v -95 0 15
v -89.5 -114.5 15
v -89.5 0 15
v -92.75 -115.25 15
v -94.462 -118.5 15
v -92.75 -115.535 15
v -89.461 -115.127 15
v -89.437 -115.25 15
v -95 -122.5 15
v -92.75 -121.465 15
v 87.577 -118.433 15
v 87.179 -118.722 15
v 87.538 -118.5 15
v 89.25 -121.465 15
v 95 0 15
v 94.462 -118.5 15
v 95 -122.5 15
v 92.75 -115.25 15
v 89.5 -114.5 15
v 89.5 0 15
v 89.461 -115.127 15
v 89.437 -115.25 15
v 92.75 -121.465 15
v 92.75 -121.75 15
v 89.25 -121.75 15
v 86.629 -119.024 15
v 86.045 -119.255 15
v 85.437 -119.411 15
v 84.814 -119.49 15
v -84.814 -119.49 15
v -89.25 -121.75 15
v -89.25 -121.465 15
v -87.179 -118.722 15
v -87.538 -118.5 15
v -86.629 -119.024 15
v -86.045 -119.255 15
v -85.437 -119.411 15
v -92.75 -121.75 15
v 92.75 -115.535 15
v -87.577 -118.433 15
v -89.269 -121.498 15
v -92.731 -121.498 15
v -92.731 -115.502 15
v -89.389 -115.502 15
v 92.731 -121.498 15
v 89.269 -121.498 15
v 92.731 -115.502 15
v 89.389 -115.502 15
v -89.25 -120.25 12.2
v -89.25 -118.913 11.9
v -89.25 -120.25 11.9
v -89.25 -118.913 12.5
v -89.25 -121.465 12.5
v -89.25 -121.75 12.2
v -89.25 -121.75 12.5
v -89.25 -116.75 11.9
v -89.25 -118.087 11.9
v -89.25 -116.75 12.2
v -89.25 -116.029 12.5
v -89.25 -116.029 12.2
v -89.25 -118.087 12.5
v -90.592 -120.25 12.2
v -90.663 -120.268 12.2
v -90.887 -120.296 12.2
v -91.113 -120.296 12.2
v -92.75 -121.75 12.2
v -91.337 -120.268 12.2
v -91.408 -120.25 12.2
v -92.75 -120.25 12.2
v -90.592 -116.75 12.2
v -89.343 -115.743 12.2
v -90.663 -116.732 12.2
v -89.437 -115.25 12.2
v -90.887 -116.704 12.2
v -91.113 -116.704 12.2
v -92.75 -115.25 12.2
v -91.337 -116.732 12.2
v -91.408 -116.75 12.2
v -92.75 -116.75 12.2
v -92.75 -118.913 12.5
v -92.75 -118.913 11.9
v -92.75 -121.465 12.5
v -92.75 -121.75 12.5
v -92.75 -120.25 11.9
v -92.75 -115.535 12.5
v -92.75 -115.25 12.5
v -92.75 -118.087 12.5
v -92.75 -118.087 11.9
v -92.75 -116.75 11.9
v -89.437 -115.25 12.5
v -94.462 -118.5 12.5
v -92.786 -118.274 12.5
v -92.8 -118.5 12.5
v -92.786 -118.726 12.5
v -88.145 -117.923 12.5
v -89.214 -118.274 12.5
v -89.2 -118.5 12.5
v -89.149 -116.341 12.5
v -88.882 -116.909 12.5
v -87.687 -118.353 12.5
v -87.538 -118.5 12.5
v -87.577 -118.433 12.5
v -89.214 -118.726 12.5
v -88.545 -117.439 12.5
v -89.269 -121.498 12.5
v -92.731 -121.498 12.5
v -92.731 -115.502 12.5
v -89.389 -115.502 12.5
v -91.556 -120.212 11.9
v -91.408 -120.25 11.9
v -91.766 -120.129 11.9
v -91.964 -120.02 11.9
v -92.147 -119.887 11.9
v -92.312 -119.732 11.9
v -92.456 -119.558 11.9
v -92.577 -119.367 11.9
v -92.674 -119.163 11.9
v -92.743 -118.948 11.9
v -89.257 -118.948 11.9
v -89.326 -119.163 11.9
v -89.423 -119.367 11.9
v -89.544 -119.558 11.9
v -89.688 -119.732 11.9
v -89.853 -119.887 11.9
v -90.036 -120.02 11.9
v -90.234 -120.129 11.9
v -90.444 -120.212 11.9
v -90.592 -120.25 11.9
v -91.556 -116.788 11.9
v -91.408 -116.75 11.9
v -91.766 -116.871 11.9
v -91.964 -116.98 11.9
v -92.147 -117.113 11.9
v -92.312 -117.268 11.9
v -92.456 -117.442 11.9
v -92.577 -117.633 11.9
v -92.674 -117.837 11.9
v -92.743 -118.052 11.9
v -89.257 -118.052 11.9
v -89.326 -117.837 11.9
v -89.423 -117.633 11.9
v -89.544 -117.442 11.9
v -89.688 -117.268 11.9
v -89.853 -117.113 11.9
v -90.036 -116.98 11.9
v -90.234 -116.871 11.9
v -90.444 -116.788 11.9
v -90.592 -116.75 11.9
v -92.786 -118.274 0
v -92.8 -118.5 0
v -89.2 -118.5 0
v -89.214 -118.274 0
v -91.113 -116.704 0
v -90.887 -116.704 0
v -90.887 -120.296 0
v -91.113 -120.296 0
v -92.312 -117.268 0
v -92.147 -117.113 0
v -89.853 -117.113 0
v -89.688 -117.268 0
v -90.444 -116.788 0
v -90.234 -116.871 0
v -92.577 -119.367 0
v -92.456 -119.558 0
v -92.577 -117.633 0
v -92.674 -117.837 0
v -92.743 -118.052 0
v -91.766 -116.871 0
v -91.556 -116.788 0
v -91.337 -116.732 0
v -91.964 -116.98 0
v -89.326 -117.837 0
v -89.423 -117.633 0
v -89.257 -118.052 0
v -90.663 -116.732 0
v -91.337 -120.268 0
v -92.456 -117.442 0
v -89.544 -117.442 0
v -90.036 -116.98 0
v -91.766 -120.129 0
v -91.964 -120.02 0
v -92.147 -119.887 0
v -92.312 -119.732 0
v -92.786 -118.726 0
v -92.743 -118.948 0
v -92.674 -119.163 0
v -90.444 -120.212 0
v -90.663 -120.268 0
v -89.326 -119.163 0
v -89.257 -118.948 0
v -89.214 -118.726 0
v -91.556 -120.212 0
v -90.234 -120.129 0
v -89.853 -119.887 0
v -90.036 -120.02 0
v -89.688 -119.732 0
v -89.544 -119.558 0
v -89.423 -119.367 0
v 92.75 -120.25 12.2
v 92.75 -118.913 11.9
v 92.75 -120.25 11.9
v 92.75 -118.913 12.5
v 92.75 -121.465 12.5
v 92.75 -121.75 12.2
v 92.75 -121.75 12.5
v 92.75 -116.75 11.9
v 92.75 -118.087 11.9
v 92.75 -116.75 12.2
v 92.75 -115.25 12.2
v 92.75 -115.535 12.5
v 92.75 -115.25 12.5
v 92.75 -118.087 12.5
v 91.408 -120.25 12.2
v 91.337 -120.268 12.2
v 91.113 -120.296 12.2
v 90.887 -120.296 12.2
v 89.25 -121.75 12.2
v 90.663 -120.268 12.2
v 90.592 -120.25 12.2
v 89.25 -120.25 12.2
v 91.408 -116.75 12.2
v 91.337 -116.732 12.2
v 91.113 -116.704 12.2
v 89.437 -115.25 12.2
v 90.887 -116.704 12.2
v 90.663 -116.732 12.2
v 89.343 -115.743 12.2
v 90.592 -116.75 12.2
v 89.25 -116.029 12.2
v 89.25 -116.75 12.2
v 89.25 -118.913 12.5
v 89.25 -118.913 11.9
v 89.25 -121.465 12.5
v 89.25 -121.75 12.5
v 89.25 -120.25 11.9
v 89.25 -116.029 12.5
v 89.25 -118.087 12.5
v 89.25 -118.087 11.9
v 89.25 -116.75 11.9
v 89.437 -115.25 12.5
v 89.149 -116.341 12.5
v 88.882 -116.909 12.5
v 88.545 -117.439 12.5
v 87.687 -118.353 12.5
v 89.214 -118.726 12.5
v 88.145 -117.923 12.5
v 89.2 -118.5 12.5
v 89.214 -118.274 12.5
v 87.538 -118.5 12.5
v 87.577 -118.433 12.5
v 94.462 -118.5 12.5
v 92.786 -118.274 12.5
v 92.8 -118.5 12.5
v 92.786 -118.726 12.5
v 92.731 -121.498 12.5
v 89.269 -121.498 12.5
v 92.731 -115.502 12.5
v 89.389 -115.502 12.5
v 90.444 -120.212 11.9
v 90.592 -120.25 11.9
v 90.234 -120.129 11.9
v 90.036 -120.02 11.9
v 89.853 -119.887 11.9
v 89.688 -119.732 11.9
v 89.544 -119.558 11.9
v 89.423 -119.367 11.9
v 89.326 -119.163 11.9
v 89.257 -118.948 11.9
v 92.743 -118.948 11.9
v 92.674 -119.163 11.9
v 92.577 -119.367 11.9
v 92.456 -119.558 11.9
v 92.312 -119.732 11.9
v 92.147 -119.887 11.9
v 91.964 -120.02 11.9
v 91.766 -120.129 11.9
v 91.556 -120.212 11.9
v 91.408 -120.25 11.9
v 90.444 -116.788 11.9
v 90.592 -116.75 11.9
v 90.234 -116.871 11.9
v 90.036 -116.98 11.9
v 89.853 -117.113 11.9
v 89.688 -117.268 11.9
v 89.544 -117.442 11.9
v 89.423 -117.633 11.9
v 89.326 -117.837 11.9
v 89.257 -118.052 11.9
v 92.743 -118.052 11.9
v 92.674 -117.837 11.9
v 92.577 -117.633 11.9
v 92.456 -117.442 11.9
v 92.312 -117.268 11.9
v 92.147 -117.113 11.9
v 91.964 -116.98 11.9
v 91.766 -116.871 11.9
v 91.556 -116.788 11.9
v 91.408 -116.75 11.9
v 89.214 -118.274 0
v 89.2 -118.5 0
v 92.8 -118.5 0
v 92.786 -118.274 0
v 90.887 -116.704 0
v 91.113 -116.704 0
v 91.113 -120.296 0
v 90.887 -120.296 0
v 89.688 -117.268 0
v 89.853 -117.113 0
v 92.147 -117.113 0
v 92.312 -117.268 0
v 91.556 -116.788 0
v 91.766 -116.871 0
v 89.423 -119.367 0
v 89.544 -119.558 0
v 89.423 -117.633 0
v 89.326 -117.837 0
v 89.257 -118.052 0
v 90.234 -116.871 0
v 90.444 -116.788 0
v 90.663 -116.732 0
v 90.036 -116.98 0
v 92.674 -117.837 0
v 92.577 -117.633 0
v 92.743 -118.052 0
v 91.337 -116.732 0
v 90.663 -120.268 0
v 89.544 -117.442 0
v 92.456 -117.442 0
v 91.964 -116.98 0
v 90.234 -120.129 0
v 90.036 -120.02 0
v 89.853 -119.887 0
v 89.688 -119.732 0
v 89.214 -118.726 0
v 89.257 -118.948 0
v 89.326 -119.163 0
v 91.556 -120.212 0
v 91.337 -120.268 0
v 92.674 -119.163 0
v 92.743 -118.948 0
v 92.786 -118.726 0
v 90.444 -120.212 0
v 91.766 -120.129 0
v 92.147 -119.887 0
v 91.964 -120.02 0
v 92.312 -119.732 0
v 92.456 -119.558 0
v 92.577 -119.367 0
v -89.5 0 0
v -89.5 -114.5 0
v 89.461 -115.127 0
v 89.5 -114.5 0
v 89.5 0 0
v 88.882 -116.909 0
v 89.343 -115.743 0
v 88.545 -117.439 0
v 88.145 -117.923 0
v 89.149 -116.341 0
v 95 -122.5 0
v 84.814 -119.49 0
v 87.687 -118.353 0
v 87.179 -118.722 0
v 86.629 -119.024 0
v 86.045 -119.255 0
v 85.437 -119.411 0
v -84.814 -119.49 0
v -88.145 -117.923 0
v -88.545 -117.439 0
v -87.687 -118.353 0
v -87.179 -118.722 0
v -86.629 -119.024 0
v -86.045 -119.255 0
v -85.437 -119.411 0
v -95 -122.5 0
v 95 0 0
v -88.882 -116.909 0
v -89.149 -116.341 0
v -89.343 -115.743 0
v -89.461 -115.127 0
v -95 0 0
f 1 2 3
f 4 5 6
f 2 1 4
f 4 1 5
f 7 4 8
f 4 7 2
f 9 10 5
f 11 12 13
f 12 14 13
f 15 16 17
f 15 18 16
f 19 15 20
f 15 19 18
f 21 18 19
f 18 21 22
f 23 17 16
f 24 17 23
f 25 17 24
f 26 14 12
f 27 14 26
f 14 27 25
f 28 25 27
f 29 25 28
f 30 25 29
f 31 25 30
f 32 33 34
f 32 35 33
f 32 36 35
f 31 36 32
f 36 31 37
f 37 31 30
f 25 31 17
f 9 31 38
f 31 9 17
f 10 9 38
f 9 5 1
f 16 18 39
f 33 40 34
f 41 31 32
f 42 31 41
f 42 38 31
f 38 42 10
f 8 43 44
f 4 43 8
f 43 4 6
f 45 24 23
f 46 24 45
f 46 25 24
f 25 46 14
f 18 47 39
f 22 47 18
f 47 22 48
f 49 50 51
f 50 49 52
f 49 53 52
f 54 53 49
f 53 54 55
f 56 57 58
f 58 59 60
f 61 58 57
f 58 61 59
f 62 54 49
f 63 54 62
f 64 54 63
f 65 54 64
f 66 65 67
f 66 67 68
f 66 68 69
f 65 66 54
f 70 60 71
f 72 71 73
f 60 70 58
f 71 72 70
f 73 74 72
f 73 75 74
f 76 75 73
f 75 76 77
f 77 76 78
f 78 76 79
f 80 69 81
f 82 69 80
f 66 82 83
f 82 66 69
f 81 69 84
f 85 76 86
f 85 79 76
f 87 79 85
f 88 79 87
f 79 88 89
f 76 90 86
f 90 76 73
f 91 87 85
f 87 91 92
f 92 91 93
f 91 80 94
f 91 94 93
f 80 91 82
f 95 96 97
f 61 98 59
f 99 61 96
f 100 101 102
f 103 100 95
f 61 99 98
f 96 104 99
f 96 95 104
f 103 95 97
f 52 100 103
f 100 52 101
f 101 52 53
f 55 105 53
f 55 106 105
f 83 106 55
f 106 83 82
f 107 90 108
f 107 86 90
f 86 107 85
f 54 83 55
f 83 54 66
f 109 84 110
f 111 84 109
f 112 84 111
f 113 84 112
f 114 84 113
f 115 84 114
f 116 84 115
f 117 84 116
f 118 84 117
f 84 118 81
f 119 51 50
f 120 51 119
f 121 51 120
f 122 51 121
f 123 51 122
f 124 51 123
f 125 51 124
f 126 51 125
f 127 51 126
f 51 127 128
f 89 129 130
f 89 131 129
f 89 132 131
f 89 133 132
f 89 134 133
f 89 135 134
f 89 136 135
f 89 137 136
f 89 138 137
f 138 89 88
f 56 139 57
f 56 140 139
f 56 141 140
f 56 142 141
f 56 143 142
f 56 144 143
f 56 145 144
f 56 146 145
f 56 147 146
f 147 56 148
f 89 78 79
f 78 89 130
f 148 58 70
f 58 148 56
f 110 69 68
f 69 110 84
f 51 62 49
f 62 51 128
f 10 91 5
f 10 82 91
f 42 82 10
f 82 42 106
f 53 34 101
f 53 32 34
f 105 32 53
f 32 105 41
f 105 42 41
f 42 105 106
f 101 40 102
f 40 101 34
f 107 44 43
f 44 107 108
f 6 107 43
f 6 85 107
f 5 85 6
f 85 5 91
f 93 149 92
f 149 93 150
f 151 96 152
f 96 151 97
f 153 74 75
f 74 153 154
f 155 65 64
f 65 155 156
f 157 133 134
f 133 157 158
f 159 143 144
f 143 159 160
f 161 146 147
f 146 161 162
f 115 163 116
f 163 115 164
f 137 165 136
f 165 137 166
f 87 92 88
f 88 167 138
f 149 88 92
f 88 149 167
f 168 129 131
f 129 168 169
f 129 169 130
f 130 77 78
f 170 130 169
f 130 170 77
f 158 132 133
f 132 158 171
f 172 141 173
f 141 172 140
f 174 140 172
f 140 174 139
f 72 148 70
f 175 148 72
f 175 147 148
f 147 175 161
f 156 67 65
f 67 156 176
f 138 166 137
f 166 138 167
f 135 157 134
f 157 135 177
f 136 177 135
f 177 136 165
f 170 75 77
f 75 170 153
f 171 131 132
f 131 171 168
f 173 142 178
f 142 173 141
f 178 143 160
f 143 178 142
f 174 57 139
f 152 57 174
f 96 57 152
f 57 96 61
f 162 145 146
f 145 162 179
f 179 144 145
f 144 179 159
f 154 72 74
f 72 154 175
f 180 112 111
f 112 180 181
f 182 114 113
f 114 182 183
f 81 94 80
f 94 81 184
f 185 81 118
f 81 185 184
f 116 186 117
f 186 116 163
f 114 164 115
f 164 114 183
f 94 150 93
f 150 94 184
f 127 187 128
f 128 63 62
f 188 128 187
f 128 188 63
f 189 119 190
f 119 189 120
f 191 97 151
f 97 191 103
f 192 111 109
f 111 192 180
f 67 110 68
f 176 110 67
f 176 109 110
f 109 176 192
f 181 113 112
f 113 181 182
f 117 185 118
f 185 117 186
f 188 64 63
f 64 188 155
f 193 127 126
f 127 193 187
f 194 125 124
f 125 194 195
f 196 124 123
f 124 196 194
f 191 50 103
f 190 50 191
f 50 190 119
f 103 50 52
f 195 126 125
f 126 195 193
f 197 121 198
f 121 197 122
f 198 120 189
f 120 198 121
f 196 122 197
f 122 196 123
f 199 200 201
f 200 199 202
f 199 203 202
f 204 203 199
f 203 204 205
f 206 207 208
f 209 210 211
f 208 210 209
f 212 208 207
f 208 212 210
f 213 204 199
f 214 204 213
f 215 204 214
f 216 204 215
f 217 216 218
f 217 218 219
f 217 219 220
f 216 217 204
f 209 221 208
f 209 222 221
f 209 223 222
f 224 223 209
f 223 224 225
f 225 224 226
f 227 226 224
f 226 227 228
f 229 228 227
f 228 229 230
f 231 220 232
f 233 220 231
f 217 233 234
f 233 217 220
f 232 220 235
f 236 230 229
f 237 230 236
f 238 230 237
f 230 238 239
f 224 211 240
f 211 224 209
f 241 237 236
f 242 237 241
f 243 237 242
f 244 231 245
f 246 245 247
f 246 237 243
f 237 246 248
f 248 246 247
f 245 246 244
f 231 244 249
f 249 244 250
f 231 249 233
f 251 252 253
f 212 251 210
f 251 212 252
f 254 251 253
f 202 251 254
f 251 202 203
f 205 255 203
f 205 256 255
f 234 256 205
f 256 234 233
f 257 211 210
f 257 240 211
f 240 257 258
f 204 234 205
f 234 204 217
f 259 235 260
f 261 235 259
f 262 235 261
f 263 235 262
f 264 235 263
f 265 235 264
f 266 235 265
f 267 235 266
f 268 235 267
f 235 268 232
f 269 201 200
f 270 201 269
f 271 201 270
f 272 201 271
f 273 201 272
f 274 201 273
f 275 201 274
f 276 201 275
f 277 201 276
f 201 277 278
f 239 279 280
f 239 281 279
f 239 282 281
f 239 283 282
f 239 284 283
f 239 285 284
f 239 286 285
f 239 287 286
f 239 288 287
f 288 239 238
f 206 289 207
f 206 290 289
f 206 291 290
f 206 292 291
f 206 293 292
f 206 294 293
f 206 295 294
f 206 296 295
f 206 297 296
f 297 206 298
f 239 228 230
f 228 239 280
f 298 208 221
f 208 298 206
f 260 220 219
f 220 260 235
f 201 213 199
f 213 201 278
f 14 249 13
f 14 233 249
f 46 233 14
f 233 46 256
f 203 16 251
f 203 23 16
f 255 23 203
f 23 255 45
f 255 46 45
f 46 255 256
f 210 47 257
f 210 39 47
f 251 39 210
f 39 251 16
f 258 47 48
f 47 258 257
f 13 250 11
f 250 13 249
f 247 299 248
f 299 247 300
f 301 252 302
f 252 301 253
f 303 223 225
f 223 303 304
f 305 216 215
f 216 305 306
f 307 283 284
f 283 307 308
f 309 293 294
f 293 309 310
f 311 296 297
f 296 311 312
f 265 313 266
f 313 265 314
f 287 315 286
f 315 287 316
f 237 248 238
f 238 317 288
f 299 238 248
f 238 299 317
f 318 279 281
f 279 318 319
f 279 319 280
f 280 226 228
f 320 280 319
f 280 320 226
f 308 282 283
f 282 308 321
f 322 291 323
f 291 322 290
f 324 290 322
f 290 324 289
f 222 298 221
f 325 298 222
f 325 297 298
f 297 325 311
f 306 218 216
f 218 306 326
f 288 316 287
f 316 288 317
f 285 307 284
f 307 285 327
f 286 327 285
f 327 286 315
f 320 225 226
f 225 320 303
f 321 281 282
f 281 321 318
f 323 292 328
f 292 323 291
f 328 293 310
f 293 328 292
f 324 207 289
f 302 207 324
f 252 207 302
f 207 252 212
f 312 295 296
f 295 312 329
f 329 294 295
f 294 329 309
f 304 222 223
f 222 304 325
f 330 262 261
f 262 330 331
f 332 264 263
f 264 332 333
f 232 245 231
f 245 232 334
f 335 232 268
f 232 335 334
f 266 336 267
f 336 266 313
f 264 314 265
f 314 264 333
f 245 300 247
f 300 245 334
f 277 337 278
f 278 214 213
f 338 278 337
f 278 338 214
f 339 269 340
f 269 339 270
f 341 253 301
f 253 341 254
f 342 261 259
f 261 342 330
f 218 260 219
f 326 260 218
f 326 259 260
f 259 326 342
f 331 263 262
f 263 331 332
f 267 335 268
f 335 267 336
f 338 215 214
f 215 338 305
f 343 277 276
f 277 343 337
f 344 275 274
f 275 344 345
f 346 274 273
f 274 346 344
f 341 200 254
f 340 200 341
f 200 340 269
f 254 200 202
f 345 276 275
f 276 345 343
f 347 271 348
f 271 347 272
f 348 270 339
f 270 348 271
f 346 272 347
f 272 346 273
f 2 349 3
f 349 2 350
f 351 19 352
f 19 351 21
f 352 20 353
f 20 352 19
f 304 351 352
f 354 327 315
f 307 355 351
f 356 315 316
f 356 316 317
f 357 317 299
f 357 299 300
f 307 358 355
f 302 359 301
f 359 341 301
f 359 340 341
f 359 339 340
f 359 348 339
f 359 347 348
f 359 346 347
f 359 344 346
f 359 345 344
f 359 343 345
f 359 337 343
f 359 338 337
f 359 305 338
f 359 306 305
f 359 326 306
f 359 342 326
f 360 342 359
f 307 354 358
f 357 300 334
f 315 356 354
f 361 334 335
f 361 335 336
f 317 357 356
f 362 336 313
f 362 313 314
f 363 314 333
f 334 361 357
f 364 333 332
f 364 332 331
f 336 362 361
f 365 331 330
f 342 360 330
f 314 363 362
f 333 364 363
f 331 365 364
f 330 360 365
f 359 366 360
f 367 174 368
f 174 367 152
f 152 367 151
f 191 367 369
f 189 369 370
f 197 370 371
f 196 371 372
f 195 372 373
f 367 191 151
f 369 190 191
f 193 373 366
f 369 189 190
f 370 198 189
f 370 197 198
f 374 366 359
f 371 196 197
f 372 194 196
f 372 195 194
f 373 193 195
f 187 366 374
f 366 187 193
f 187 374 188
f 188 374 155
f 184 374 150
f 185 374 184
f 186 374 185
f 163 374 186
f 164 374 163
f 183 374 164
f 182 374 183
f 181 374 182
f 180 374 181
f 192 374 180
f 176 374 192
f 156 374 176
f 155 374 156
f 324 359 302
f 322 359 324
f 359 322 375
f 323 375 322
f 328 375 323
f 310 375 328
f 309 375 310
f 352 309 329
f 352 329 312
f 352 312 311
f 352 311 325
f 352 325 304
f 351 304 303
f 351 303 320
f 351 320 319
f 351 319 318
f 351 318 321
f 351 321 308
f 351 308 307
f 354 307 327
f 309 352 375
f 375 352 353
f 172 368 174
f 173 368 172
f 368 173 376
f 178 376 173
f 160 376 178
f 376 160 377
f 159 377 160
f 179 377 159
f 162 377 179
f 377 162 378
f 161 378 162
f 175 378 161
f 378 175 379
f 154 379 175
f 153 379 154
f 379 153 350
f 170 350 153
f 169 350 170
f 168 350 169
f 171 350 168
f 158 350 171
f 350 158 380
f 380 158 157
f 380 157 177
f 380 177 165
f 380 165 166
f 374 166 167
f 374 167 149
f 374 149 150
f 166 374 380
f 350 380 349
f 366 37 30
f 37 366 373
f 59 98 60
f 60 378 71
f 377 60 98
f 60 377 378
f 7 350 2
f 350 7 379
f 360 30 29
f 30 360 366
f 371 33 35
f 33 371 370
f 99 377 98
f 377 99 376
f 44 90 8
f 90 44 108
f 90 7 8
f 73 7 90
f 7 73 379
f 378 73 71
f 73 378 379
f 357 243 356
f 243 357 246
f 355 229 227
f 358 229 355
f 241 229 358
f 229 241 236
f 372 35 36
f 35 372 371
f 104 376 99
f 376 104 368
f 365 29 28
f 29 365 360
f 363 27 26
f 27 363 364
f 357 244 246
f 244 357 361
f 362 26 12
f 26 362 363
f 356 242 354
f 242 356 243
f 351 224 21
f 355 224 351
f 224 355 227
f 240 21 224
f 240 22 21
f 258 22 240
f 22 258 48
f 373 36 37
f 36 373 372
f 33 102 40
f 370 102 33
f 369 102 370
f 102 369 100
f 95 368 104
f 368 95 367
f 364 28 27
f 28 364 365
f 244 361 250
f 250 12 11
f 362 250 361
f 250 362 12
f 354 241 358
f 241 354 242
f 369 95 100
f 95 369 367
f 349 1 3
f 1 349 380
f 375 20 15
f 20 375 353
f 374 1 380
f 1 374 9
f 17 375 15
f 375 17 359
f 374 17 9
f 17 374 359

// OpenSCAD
$fn = 50;


difference() {
	union() {
		translate(v = [-95.0000000000, -122.5000000000, 0]) {
			cube(size = [190, 245, 15]);
		}
	}
	union() {
		translate(v = [-91.0000000000, -118.5000000000, -3]) {
			rotate(a = [0, 180, 0]) {
				difference() {
					union() {
						translate(v = [0, 0, -18.0000000000]) {
							rotate(a = [0, 0, 0]) {
								difference() {
									union() {
										#translate(v = [-1.7500000000, -3.2500000000, -0.3000000000]) {
											cube(size = [3.5000000000, 6.5000000000, 0.3000000000]);
										}
										#translate(v = [-1.7500000000, -1.7500000000, -0.6000000000]) {
											cube(size = [3.5000000000, 3.5000000000, 0.3000000000]);
										}
										#translate(v = [-1.7500000000, -3.2500000000, 2.5000000000]) {
											cube(size = [3.5000000000, 6.5000000000, 0.3000000000]);
										}
										#translate(v = [-1.7500000000, -1.7500000000, 2.8000000000]) {
											cube(size = [3.5000000000, 3.5000000000, 0.3000000000]);
										}
										#linear_extrude(height = 2.5000000000) {
											polygon(points = [[3.4620000000, 0.0000000000], [1.7310000000, 2.9981799479], [-1.7310000000, 2.9981799479], [-3.4620000000, 0.0000000000], [-1.7310000000, -2.9981799479], [1.7310000000, -2.9981799479]]);
										}
										#translate(v = [-1.7500000000, -3.2500000000, -0.3000000000]) {
											cube(size = [3.5000000000, 6.5000000000, 0.3000000000]);
										}
										#translate(v = [-1.7500000000, -1.7500000000, -0.6000000000]) {
											cube(size = [3.5000000000, 3.5000000000, 0.3000000000]);
										}
										#translate(v = [-1.7500000000, -3.2500000000, 2.5000000000]) {
											cube(size = [3.5000000000, 6.5000000000, 0.3000000000]);
										}
										#translate(v = [-1.7500000000, -1.7500000000, 2.8000000000]) {
											cube(size = [3.5000000000, 3.5000000000, 0.3000000000]);
										}
										#translate(v = [-1.7500000000, -3.2500000000, -0.3000000000]) {
											cube(size = [3.5000000000, 6.5000000000, 0.3000000000]);
										}
										#translate(v = [-1.7500000000, -1.7500000000, -0.6000000000]) {
											cube(size = [3.5000000000, 3.5000000000, 0.3000000000]);
										}
										#translate(v = [-1.7500000000, -3.2500000000, 2.5000000000]) {
											cube(size = [3.5000000000, 6.5000000000, 0.3000000000]);
										}
										#translate(v = [-1.7500000000, -1.7500000000, 2.8000000000]) {
											cube(size = [3.5000000000, 3.5000000000, 0.3000000000]);
										}
									}
									union();
								}
							}
						}
						translate(v = [0, 0, -18.0000000000]) {
							rotate(a = [0, 0, 0]) {
								difference() {
									union() {
										#translate(v = [-1.7500000000, -3.2500000000, -0.3000000000]) {
											cube(size = [3.5000000000, 6.5000000000, 0.3000000000]);
										}
										#translate(v = [-1.7500000000, -1.7500000000, -0.6000000000]) {
											cube(size = [3.5000000000, 3.5000000000, 0.3000000000]);
										}
										#translate(v = [-1.7500000000, -3.2500000000, 2.5000000000]) {
											cube(size = [3.5000000000, 6.5000000000, 0.3000000000]);
										}
										#translate(v = [-1.7500000000, -1.7500000000, 2.8000000000]) {
											cube(size = [3.5000000000, 3.5000000000, 0.3000000000]);
										}
										#linear_extrude(height = 2.5000000000) {
											polygon(points = [[3.4620000000, 0.0000000000], [1.7310000000, 2.9981799479], [-1.7310000000, 2.9981799479], [-3.4620000000, 0.0000000000], [-1.7310000000, -2.9981799479], [1.7310000000, -2.9981799479]]);
										}
										#translate(v = [-1.7500000000, -3.2500000000, -0.3000000000]) {
											cube(size = [3.5000000000, 6.5000000000, 0.3000000000]);
										}
										#translate(v = [-1.7500000000, -1.7500000000, -0.6000000000]) {
											cube(size = [3.5000000000, 3.5000000000, 0.3000000000]);
										}
										#translate(v = [-1.7500000000, -3.2500000000, 2.5000000000]) {
											cube(size = [3.5000000000, 6.5000000000, 0.3000000000]);
										}
										#translate(v = [-1.7500000000, -1.7500000000, 2.8000000000]) {
											cube(size = [3.5000000000, 3.5000000000, 0.3000000000]);
										}
										#translate(v = [-1.7500000000, -3.2500000000, -0.3000000000]) {
											cube(size = [3.5000000000, 6.5000000000, 0.3000000000]);
										}
										#translate(v = [-1.7500000000, -1.7500000000, -0.6000000000]) {
											cube(size = [3.5000000000, 3.5000000000, 0.3000000000]);
										}
										#translate(v = [-1.7500000000, -3.2500000000, 2.5000000000]) {
											cube(size = [3.5000000000, 6.5000000000, 0.3000000000]);
										}
										#translate(v = [-1.7500000000, -1.7500000000, 2.8000000000]) {
											cube(size = [3.5000000000, 3.5000000000, 0.3000000000]);
										}
									}
									union();
								}
							}
						}
						translate(v = [0, 0, -18.0000000000]) {
							rotate(a = [0, 0, 0]) {
								difference() {
									union() {
										#translate(v = [-1.7500000000, -3.2500000000, -0.3000000000]) {
											cube(size = [3.5000000000, 6.5000000000, 0.3000000000]);
										}
										#translate(v = [-1.7500000000, -1.7500000000, -0.6000000000]) {
											cube(size = [3.5000000000, 3.5000000000, 0.3000000000]);
										}
										#translate(v = [-1.7500000000, -3.2500000000, 2.5000000000]) {
											cube(size = [3.5000000000, 6.5000000000, 0.3000000000]);
										}
										#translate(v = [-1.7500000000, -1.7500000000, 2.8000000000]) {
											cube(size = [3.5000000000, 3.5000000000, 0.3000000000]);
										}
										#linear_extrude(height = 2.5000000000) {
											polygon(points = [[3.4620000000, 0.0000000000], [1.7310000000, 2.9981799479], [-1.7310000000, 2.9981799479], [-3.4620000000, 0.0000000000], [-1.7310000000, -2.9981799479], [1.7310000000, -2.9981799479]]);
										}
										#translate(v = [-1.7500000000, -3.2500000000, -0.3000000000]) {
											cube(size = [3.5000000000, 6.5000000000, 0.3000000000]);
										}
										#translate(v = [-1.7500000000, -1.7500000000, -0.6000000000]) {
											cube(size = [3.5000000000, 3.5000000000, 0.3000000000]);
										}
										#translate(v = [-1.7500000000, -3.2500000000, 2.5000000000]) {
											cube(size = [3.5000000000, 6.5000000000, 0.3000000000]);
										}
										#translate(v = [-1.7500000000, -1.7500000000, 2.8000000000]) {
											cube(size = [3.5000000000, 3.5000000000, 0.3000000000]);
										}
										#translate(v = [-1.7500000000, -3.2500000000, -0.3000000000]) {
											cube(size = [3.5000000000, 6.5000000000, 0.3000000000]);
										}
										#translate(v = [-1.7500000000, -1.7500000000, -0.6000000000]) {
											cube(size = [3.5000000000, 3.5000000000, 0.3000000000]);
										}
										#translate(v = [-1.7500000000, -3.2500000000, 2.5000000000]) {
											cube(size = [3.5000000000, 6.5000000000, 0.3000000000]);
										}
										#translate(v = [-1.7500000000, -1.7500000000, 2.8000000000]) {
											cube(size = [3.5000000000, 3.5000000000, 0.3000000000]);
										}
									}
									union();
								}
							}
						}
						#translate(v = [0, 0, -18.0000000000]) {
							cylinder(h = 18, r = 1.5000000000);
						}
						#translate(v = [0, 0, -1.9000000000]) {
							cylinder(h = 1.9000000000, r1 = 1.8000000000, r2 = 3.6000000000);
						}
						#translate(v = [0, 0, -18.0000000000]) {
							cylinder(h = 18, r = 1.8000000000);
						}
						#translate(v = [0, 0, -18.0000000000]) {
							cylinder(h = 18, r = 1.5000000000);
						}
					}
					union();
				}
			}
		}
		translate(v = [91.0000000000, -118.5000000000, -3]) {
			rotate(a = [0, 180, 0]) {
				difference() {
					union() {
						translate(v = [0, 0, -18.0000000000]) {
							rotate(a = [0, 0, 0]) {
								difference() {
									union() {
										#translate(v = [-1.7500000000, -3.2500000000, -0.3000000000]) {
											cube(size = [3.5000000000, 6.5000000000, 0.3000000000]);
										}
										#translate(v = [-1.7500000000, -1.7500000000, -0.6000000000]) {
											cube(size = [3.5000000000, 3.5000000000, 0.3000000000]);
										}
										#translate(v = [-1.7500000000, -3.2500000000, 2.5000000000]) {
											cube(size = [3.5000000000, 6.5000000000, 0.3000000000]);
										}
										#translate(v = [-1.7500000000, -1.7500000000, 2.8000000000]) {
											cube(size = [3.5000000000, 3.5000000000, 0.3000000000]);
										}
										#linear_extrude(height = 2.5000000000) {
											polygon(points = [[3.4620000000, 0.0000000000], [1.7310000000, 2.9981799479], [-1.7310000000, 2.9981799479], [-3.4620000000, 0.0000000000], [-1.7310000000, -2.9981799479], [1.7310000000, -2.9981799479]]);
										}
										#translate(v = [-1.7500000000, -3.2500000000, -0.3000000000]) {
											cube(size = [3.5000000000, 6.5000000000, 0.3000000000]);
										}
										#translate(v = [-1.7500000000, -1.7500000000, -0.6000000000]) {
											cube(size = [3.5000000000, 3.5000000000, 0.3000000000]);
										}
										#translate(v = [-1.7500000000, -3.2500000000, 2.5000000000]) {
											cube(size = [3.5000000000, 6.5000000000, 0.3000000000]);
										}
										#translate(v = [-1.7500000000, -1.7500000000, 2.8000000000]) {
											cube(size = [3.5000000000, 3.5000000000, 0.3000000000]);
										}
										#translate(v = [-1.7500000000, -3.2500000000, -0.3000000000]) {
											cube(size = [3.5000000000, 6.5000000000, 0.3000000000]);
										}
										#translate(v = [-1.7500000000, -1.7500000000, -0.6000000000]) {
											cube(size = [3.5000000000, 3.5000000000, 0.3000000000]);
										}
										#translate(v = [-1.7500000000, -3.2500000000, 2.5000000000]) {
											cube(size = [3.5000000000, 6.5000000000, 0.3000000000]);
										}
										#translate(v = [-1.7500000000, -1.7500000000, 2.8000000000]) {
											cube(size = [3.5000000000, 3.5000000000, 0.3000000000]);
										}
									}
									union();
								}
							}
						}
						translate(v = [0, 0, -18.0000000000]) {
							rotate(a = [0, 0, 0]) {
								difference() {
									union() {
										#translate(v = [-1.7500000000, -3.2500000000, -0.3000000000]) {
											cube(size = [3.5000000000, 6.5000000000, 0.3000000000]);
										}
										#translate(v = [-1.7500000000, -1.7500000000, -0.6000000000]) {
											cube(size = [3.5000000000, 3.5000000000, 0.3000000000]);
										}
										#translate(v = [-1.7500000000, -3.2500000000, 2.5000000000]) {
											cube(size = [3.5000000000, 6.5000000000, 0.3000000000]);
										}
										#translate(v = [-1.7500000000, -1.7500000000, 2.8000000000]) {
											cube(size = [3.5000000000, 3.5000000000, 0.3000000000]);
										}
										#linear_extrude(height = 2.5000000000) {
											polygon(points = [[3.4620000000, 0.0000000000], [1.7310000000, 2.9981799479], [-1.7310000000, 2.9981799479], [-3.4620000000, 0.0000000000], [-1.7310000000, -2.9981799479], [1.7310000000, -2.9981799479]]);
										}
										#translate(v = [-1.7500000000, -3.2500000000, -0.3000000000]) {
											cube(size = [3.5000000000, 6.5000000000, 0.3000000000]);
										}
										#translate(v = [-1.7500000000, -1.7500000000, -0.6000000000]) {
											cube(size = [3.5000000000, 3.5000000000, 0.3000000000]);
										}
										#translate(v = [-1.7500000000, -3.2500000000, 2.5000000000]) {
											cube(size = [3.5000000000, 6.5000000000, 0.3000000000]);
										}
										#translate(v = [-1.7500000000, -1.7500000000, 2.8000000000]) {
											cube(size = [3.5000000000, 3.5000000000, 0.3000000000]);
										}
										#translate(v = [-1.7500000000, -3.2500000000, -0.3000000000]) {
											cube(size = [3.5000000000, 6.5000000000, 0.3000000000]);
										}
										#translate(v = [-1.7500000000, -1.7500000000, -0.6000000000]) {
											cube(size = [3.5000000000, 3.5000000000, 0.3000000000]);
										}
										#translate(v = [-1.7500000000, -3.2500000000, 2.5000000000]) {
											cube(size = [3.5000000000, 6.5000000000, 0.3000000000]);
										}
										#translate(v = [-1.7500000000, -1.7500000000, 2.8000000000]) {
											cube(size = [3.5000000000, 3.5000000000, 0.3000000000]);
										}
									}
									union();
								}
							}
						}
						translate(v = [0, 0, -18.0000000000]) {
							rotate(a = [0, 0, 0]) {
								difference() {
									union() {
										#translate(v = [-1.7500000000, -3.2500000000, -0.3000000000]) {
											cube(size = [3.5000000000, 6.5000000000, 0.3000000000]);
										}
										#translate(v = [-1.7500000000, -1.7500000000, -0.6000000000]) {
											cube(size = [3.5000000000, 3.5000000000, 0.3000000000]);
										}
										#translate(v = [-1.7500000000, -3.2500000000, 2.5000000000]) {
											cube(size = [3.5000000000, 6.5000000000, 0.3000000000]);
										}
										#translate(v = [-1.7500000000, -1.7500000000, 2.8000000000]) {
											cube(size = [3.5000000000, 3.5000000000, 0.3000000000]);
										}
										#linear_extrude(height = 2.5000000000) {
											polygon(points = [[3.4620000000, 0.0000000000], [1.7310000000, 2.9981799479], [-1.7310000000, 2.9981799479], [-3.4620000000, 0.0000000000], [-1.7310000000, -2.9981799479], [1.7310000000, -2.9981799479]]);
										}
										#translate(v = [-1.7500000000, -3.2500000000, -0.3000000000]) {
											cube(size = [3.5000000000, 6.5000000000, 0.3000000000]);
										}
										#translate(v = [-1.7500000000, -1.7500000000, -0.6000000000]) {
											cube(size = [3.5000000000, 3.5000000000, 0.3000000000]);
										}
										#translate(v = [-1.7500000000, -3.2500000000, 2.5000000000]) {
											cube(size = [3.5000000000, 6.5000000000, 0.3000000000]);
										}
										#translate(v = [-1.7500000000, -1.7500000000, 2.8000000000]) {
											cube(size = [3.5000000000, 3.5000000000, 0.3000000000]);
										}
										#translate(v = [-1.7500000000, -3.2500000000, -0.3000000000]) {
											cube(size = [3.5000000000, 6.5000000000, 0.3000000000]);
										}
										#translate(v = [-1.7500000000, -1.7500000000, -0.6000000000]) {
											cube(size = [3.5000000000, 3.5000000000, 0.3000000000]);
										}
										#translate(v = [-1.7500000000, -3.2500000000, 2.5000000000]) {
											cube(size = [3.5000000000, 6.5000000000, 0.3000000000]);
										}
										#translate(v = [-1.7500000000, -1.7500000000, 2.8000000000]) {
											cube(size = [3.5000000000, 3.5000000000, 0.3000000000]);
										}
									}
									union();
								}
							}
						}
						#translate(v = [0, 0, -18.0000000000]) {
							cylinder(h = 18, r = 1.5000000000);
						}
						#translate(v = [0, 0, -1.9000000000]) {
							cylinder(h = 1.9000000000, r1 = 1.8000000000, r2 = 3.6000000000);
						}
						#translate(v = [0, 0, -18.0000000000]) {
							cylinder(h = 18, r = 1.8000000000);
						}
						#translate(v = [0, 0, -18.0000000000]) {
							cylinder(h = 18, r = 1.5000000000);
						}
					}
					union();
				}
			}
		}
		translate(v = [-91.0000000000, 118.5000000000, -3]) {
			rotate(a = [0, 180, 0]) {
				difference() {
					union() {
						translate(v = [0, 0, -18.0000000000]) {
							rotate(a = [0, 0, 0]) {
								difference() {
									union() {
										#translate(v = [-1.7500000000, -3.2500000000, -0.3000000000]) {
											cube(size = [3.5000000000, 6.5000000000, 0.3000000000]);
										}
										#translate(v = [-1.7500000000, -1.7500000000, -0.6000000000]) {
											cube(size = [3.5000000000, 3.5000000000, 0.3000000000]);
										}
										#translate(v = [-1.7500000000, -3.2500000000, 2.5000000000]) {
											cube(size = [3.5000000000, 6.5000000000, 0.3000000000]);
										}
										#translate(v = [-1.7500000000, -1.7500000000, 2.8000000000]) {
											cube(size = [3.5000000000, 3.5000000000, 0.3000000000]);
										}
										#linear_extrude(height = 2.5000000000) {
											polygon(points = [[3.4620000000, 0.0000000000], [1.7310000000, 2.9981799479], [-1.7310000000, 2.9981799479], [-3.4620000000, 0.0000000000], [-1.7310000000, -2.9981799479], [1.7310000000, -2.9981799479]]);
										}
										#translate(v = [-1.7500000000, -3.2500000000, -0.3000000000]) {
											cube(size = [3.5000000000, 6.5000000000, 0.3000000000]);
										}
										#translate(v = [-1.7500000000, -1.7500000000, -0.6000000000]) {
											cube(size = [3.5000000000, 3.5000000000, 0.3000000000]);
										}
										#translate(v = [-1.7500000000, -3.2500000000, 2.5000000000]) {
											cube(size = [3.5000000000, 6.5000000000, 0.3000000000]);
										}
										#translate(v = [-1.7500000000, -1.7500000000, 2.8000000000]) {
											cube(size = [3.5000000000, 3.5000000000, 0.3000000000]);
										}
										#translate(v = [-1.7500000000, -3.2500000000, -0.3000000000]) {
											cube(size = [3.5000000000, 6.5000000000, 0.3000000000]);
										}
										#translate(v = [-1.7500000000, -1.7500000000, -0.6000000000]) {
											cube(size = [3.5000000000, 3.5000000000, 0.3000000000]);
										}
										#translate(v = [-1.7500000000, -3.2500000000, 2.5000000000]) {
											cube(size = [3.5000000000, 6.5000000000, 0.3000000000]);
										}
										#translate(v = [-1.7500000000, -1.7500000000, 2.8000000000]) {
											cube(size = [3.5000000000, 3.5000000000, 0.3000000000]);
										}
									}
									union();
								}
							}
						}
						translate(v = [0, 0, -18.0000000000]) {
							rotate(a = [0, 0, 0]) {
								difference() {
									union() {
										#translate(v = [-1.7500000000, -3.2500000000, -0.3000000000]) {
											cube(size = [3.5000000000, 6.5000000000, 0.3000000000]);
										}
										#translate(v = [-1.7500000000, -1.7500000000, -0.6000000000]) {
											cube(size = [3.5000000000, 3.5000000000, 0.3000000000]);
										}
										#translate(v = [-1.7500000000, -3.2500000000, 2.5000000000]) {
											cube(size = [3.5000000000, 6.5000000000, 0.3000000000]);
										}
										#translate(v = [-1.7500000000, -1.7500000000, 2.8000000000]) {
											cube(size = [3.5000000000, 3.5000000000, 0.3000000000]);
										}
										#linear_extrude(height = 2.5000000000) {
											polygon(points = [[3.4620000000, 0.0000000000], [1.7310000000, 2.9981799479], [-1.7310000000, 2.9981799479], [-3.4620000000, 0.0000000000], [-1.7310000000, -2.9981799479], [1.7310000000, -2.9981799479]]);
										}
										#translate(v = [-1.7500000000, -3.2500000000, -0.3000000000]) {
											cube(size = [3.5000000000, 6.5000000000, 0.3000000000]);
										}
										#translate(v = [-1.7500000000, -1.7500000000, -0.6000000000]) {
											cube(size = [3.5000000000, 3.5000000000, 0.3000000000]);
										}
										#translate(v = [-1.7500000000, -3.2500000000, 2.5000000000]) {
											cube(size = [3.5000000000, 6.5000000000, 0.3000000000]);
										}
										#translate(v = [-1.7500000000, -1.7500000000, 2.8000000000]) {
											cube(size = [3.5000000000, 3.5000000000, 0.3000000000]);
										}
										#translate(v = [-1.7500000000, -3.2500000000, -0.3000000000]) {
											cube(size = [3.5000000000, 6.5000000000, 0.3000000000]);
										}
										#translate(v = [-1.7500000000, -1.7500000000, -0.6000000000]) {
											cube(size = [3.5000000000, 3.5000000000, 0.3000000000]);
										}
										#translate(v = [-1.7500000000, -3.2500000000, 2.5000000000]) {
											cube(size = [3.5000000000, 6.5000000000, 0.3000000000]);
										}
										#translate(v = [-1.7500000000, -1.7500000000, 2.8000000000]) {
											cube(size = [3.5000000000, 3.5000000000, 0.3000000000]);
										}
									}
									union();
								}
							}
						}
						translate(v = [0, 0, -18.0000000000]) {
							rotate(a = [0, 0, 0]) {
								difference() {
									union() {
										#translate(v = [-1.7500000000, -3.2500000000, -0.3000000000]) {
											cube(size = [3.5000000000, 6.5000000000, 0.3000000000]);
										}
										#translate(v = [-1.7500000000, -1.7500000000, -0.6000000000]) {
											cube(size = [3.5000000000, 3.5000000000, 0.3000000000]);
										}
										#translate(v = [-1.7500000000, -3.2500000000, 2.5000000000]) {
											cube(size = [3.5000000000, 6.5000000000, 0.3000000000]);
										}
										#translate(v = [-1.7500000000, -1.7500000000, 2.8000000000]) {
											cube(size = [3.5000000000, 3.5000000000, 0.3000000000]);
										}
										#linear_extrude(height = 2.5000000000) {
											polygon(points = [[3.4620000000, 0.0000000000], [1.7310000000, 2.9981799479], [-1.7310000000, 2.9981799479], [-3.4620000000, 0.0000000000], [-1.7310000000, -2.9981799479], [1.7310000000, -2.9981799479]]);
										}
										#translate(v = [-1.7500000000, -3.2500000000, -0.3000000000]) {
											cube(size = [3.5000000000, 6.5000000000, 0.3000000000]);
										}
										#translate(v = [-1.7500000000, -1.7500000000, -0.6000000000]) {
											cube(size = [3.5000000000, 3.5000000000, 0.3000000000]);
										}
										#translate(v = [-1.7500000000, -3.2500000000, 2.5000000000]) {
											cube(size = [3.5000000000, 6.5000000000, 0.3000000000]);
										}
										#translate(v = [-1.7500000000, -1.7500000000, 2.8000000000]) {
											cube(size = [3.5000000000, 3.5000000000, 0.3000000000]);
										}
										#translate(v = [-1.7500000000, -3.2500000000, -0.3000000000]) {
											cube(size = [3.5000000000, 6.5000000000, 0.3000000000]);
										}
										#translate(v = [-1.7500000000, -1.7500000000, -0.6000000000]) {
											cube(size = [3.5000000000, 3.5000000000, 0.3000000000]);
										}
										#translate(v = [-1.7500000000, -3.2500000000, 2.5000000000]) {
											cube(size = [3.5000000000, 6.5000000000, 0.3000000000]);
										}
										#translate(v = [-1.7500000000, -1.7500000000, 2.8000000000]) {
											cube(size = [3.5000000000, 3.5000000000, 0.3000000000]);
										}
									}
									union();
								}
							}
						}
						#translate(v = [0, 0, -18.0000000000]) {
							cylinder(h = 18, r = 1.5000000000);
						}
						#translate(v = [0, 0, -1.9000000000]) {
							cylinder(h = 1.9000000000, r1 = 1.8000000000, r2 = 3.6000000000);
						}
						#translate(v = [0, 0, -18.0000000000]) {
							cylinder(h = 18, r = 1.8000000000);
						}
						#translate(v = [0, 0, -18.0000000000]) {
							cylinder(h = 18, r = 1.5000000000);
						}
					}
					union();
				}
			}
		}
		translate(v = [91.0000000000, 118.5000000000, -3]) {
			rotate(a = [0, 180, 0]) {
				difference() {
					union() {
						translate(v = [0, 0, -18.0000000000]) {
							rotate(a = [0, 0, 0]) {
								difference() {
									union() {
										#translate(v = [-1.7500000000, -3.2500000000, -0.3000000000]) {
											cube(size = [3.5000000000, 6.5000000000, 0.3000000000]);
										}
										#translate(v = [-1.7500000000, -1.7500000000, -0.6000000000]) {
											cube(size = [3.5000000000, 3.5000000000, 0.3000000000]);
										}
										#translate(v = [-1.7500000000, -3.2500000000, 2.5000000000]) {
											cube(size = [3.5000000000, 6.5000000000, 0.3000000000]);
										}
										#translate(v = [-1.7500000000, -1.7500000000, 2.8000000000]) {
											cube(size = [3.5000000000, 3.5000000000, 0.3000000000]);
										}
										#linear_extrude(height = 2.5000000000) {
											polygon(points = [[3.4620000000, 0.0000000000], [1.7310000000, 2.9981799479], [-1.7310000000, 2.9981799479], [-3.4620000000, 0.0000000000], [-1.7310000000, -2.9981799479], [1.7310000000, -2.9981799479]]);
										}
										#translate(v = [-1.7500000000, -3.2500000000, -0.3000000000]) {
											cube(size = [3.5000000000, 6.5000000000, 0.3000000000]);
										}
										#translate(v = [-1.7500000000, -1.7500000000, -0.6000000000]) {
											cube(size = [3.5000000000, 3.5000000000, 0.3000000000]);
										}
										#translate(v = [-1.7500000000, -3.2500000000, 2.5000000000]) {
											cube(size = [3.5000000000, 6.5000000000, 0.3000000000]);
										}
										#translate(v = [-1.7500000000, -1.7500000000, 2.8000000000]) {
											cube(size = [3.5000000000, 3.5000000000, 0.3000000000]);
										}
										#translate(v = [-1.7500000000, -3.2500000000, -0.3000000000]) {
											cube(size = [3.5000000000, 6.5000000000, 0.3000000000]);
										}
										#translate(v = [-1.7500000000, -1.7500000000, -0.6000000000]) {
											cube(size = [3.5000000000, 3.5000000000, 0.3000000000]);
										}
										#translate(v = [-1.7500000000, -3.2500000000, 2.5000000000]) {
											cube(size = [3.5000000000, 6.5000000000, 0.3000000000]);
										}
										#translate(v = [-1.7500000000, -1.7500000000, 2.8000000000]) {
											cube(size = [3.5000000000, 3.5000000000, 0.3000000000]);
										}
									}
									union();
								}
							}
						}
						translate(v = [0, 0, -18.0000000000]) {
							rotate(a = [0, 0, 0]) {
								difference() {
									union() {
										#translate(v = [-1.7500000000, -3.2500000000, -0.3000000000]) {
											cube(size = [3.5000000000, 6.5000000000, 0.3000000000]);
										}
										#translate(v = [-1.7500000000, -1.7500000000, -0.6000000000]) {
											cube(size = [3.5000000000, 3.5000000000, 0.3000000000]);
										}
										#translate(v = [-1.7500000000, -3.2500000000, 2.5000000000]) {
											cube(size = [3.5000000000, 6.5000000000, 0.3000000000]);
										}
										#translate(v = [-1.7500000000, -1.7500000000, 2.8000000000]) {
											cube(size = [3.5000000000, 3.5000000000, 0.3000000000]);
										}
										#linear_extrude(height = 2.5000000000) {
											polygon(points = [[3.4620000000, 0.0000000000], [1.7310000000, 2.9981799479], [-1.7310000000, 2.9981799479], [-3.4620000000, 0.0000000000], [-1.7310000000, -2.9981799479], [1.7310000000, -2.9981799479]]);
										}
										#translate(v = [-1.7500000000, -3.2500000000, -0.3000000000]) {
											cube(size = [3.5000000000, 6.5000000000, 0.3000000000]);
										}
										#translate(v = [-1.7500000000, -1.7500000000, -0.6000000000]) {
											cube(size = [3.5000000000, 3.5000000000, 0.3000000000]);
										}
										#translate(v = [-1.7500000000, -3.2500000000, 2.5000000000]) {
											cube(size = [3.5000000000, 6.5000000000, 0.3000000000]);
										}
										#translate(v = [-1.7500000000, -1.7500000000, 2.8000000000]) {
											cube(size = [3.5000000000, 3.5000000000, 0.3000000000]);
										}
										#translate(v = [-1.7500000000, -3.2500000000, -0.3000000000]) {
											cube(size = [3.5000000000, 6.5000000000, 0.3000000000]);
										}
										#translate(v = [-1.7500000000, -1.7500000000, -0.6000000000]) {
											cube(size = [3.5000000000, 3.5000000000, 0.3000000000]);
										}
										#translate(v = [-1.7500000000, -3.2500000000, 2.5000000000]) {
											cube(size = [3.5000000000, 6.5000000000, 0.3000000000]);
										}
										#translate(v = [-1.7500000000, -1.7500000000, 2.8000000000]) {
											cube(size = [3.5000000000, 3.5000000000, 0.3000000000]);
										}
									}
									union();
								}
							}
						}
						translate(v = [0, 0, -18.0000000000]) {
							rotate(a = [0, 0, 0]) {
								difference() {
									union() {
										#translate(v = [-1.7500000000, -3.2500000000, -0.3000000000]) {
											cube(size = [3.5000000000, 6.5000000000, 0.3000000000]);
										}
										#translate(v = [-1.7500000000, -1.7500000000, -0.6000000000]) {
											cube(size = [3.5000000000, 3.5000000000, 0.3000000000]);
										}
										#translate(v = [-1.7500000000, -3.2500000000, 2.5000000000]) {
											cube(size = [3.5000000000, 6.5000000000, 0.3000000000]);
										}
										#translate(v = [-1.7500000000, -1.7500000000, 2.8000000000]) {
											cube(size = [3.5000000000, 3.5000000000, 0.3000000000]);
										}
										#linear_extrude(height = 2.5000000000) {
											polygon(points = [[3.4620000000, 0.0000000000], [1.7310000000, 2.9981799479], [-1.7310000000, 2.9981799479], [-3.4620000000, 0.0000000000], [-1.7310000000, -2.9981799479], [1.7310000000, -2.9981799479]]);
										}
										#translate(v = [-1.7500000000, -3.2500000000, -0.3000000000]) {
											cube(size = [3.5000000000, 6.5000000000, 0.3000000000]);
										}
										#translate(v = [-1.7500000000, -1.7500000000, -0.6000000000]) {
											cube(size = [3.5000000000, 3.5000000000, 0.3000000000]);
										}
										#translate(v = [-1.7500000000, -3.2500000000, 2.5000000000]) {
											cube(size = [3.5000000000, 6.5000000000, 0.3000000000]);
										}
										#translate(v = [-1.7500000000, -1.7500000000, 2.8000000000]) {
											cube(size = [3.5000000000, 3.5000000000, 0.3000000000]);
										}
										#translate(v = [-1.7500000000, -3.2500000000, -0.3000000000]) {
											cube(size = [3.5000000000, 6.5000000000, 0.3000000000]);
										}
										#translate(v = [-1.7500000000, -1.7500000000, -0.6000000000]) {
											cube(size = [3.5000000000, 3.5000000000, 0.3000000000]);
										}
										#translate(v = [-1.7500000000, -3.2500000000, 2.5000000000]) {
											cube(size = [3.5000000000, 6.5000000000, 0.3000000000]);
										}
										#translate(v = [-1.7500000000, -1.7500000000, 2.8000000000]) {
											cube(size = [3.5000000000, 3.5000000000, 0.3000000000]);
										}
									}
									union();
								}
							}
						}
						#translate(v = [0, 0, -18.0000000000]) {
							cylinder(h = 18, r = 1.5000000000);
						}
						#translate(v = [0, 0, -1.9000000000]) {
							cylinder(h = 1.9000000000, r1 = 1.8000000000, r2 = 3.6000000000);
						}
						#translate(v = [0, 0, -18.0000000000]) {
							cylinder(h = 18, r = 1.8000000000);
						}
						#translate(v = [0, 0, -18.0000000000]) {
							cylinder(h = 18, r = 1.5000000000);
						}
					}
					union();
				}
			}
		}
		#hull() {
			translate(v = [-84.5000000000, 114.5000000000, 0]) {
				cylinder(h = 15, r = 5);
			}
			translate(v = [84.5000000000, 114.5000000000, 0]) {
				cylinder(h = 15, r = 5);
			}
			translate(v = [-84.5000000000, -114.5000000000, 0]) {
				cylinder(h = 15, r = 5);
			}
			translate(v = [84.5000000000, -114.5000000000, 0]) {
				cylinder(h = 15, r = 5);
			}
		}
		translate(v = [-250.0000000000, 0, -250.0000000000]) {
			cube(size = [500, 500, 500]);
		}
		translate(v = [-250.0000000000, 0, -250.0000000000]) {
			cube(size = [500, 500, 500]);
		}
		translate(v = [-250.0000000000, 0, -250.0000000000]) {
			cube(size = [500, 500, 500]);
		}
	}
}
